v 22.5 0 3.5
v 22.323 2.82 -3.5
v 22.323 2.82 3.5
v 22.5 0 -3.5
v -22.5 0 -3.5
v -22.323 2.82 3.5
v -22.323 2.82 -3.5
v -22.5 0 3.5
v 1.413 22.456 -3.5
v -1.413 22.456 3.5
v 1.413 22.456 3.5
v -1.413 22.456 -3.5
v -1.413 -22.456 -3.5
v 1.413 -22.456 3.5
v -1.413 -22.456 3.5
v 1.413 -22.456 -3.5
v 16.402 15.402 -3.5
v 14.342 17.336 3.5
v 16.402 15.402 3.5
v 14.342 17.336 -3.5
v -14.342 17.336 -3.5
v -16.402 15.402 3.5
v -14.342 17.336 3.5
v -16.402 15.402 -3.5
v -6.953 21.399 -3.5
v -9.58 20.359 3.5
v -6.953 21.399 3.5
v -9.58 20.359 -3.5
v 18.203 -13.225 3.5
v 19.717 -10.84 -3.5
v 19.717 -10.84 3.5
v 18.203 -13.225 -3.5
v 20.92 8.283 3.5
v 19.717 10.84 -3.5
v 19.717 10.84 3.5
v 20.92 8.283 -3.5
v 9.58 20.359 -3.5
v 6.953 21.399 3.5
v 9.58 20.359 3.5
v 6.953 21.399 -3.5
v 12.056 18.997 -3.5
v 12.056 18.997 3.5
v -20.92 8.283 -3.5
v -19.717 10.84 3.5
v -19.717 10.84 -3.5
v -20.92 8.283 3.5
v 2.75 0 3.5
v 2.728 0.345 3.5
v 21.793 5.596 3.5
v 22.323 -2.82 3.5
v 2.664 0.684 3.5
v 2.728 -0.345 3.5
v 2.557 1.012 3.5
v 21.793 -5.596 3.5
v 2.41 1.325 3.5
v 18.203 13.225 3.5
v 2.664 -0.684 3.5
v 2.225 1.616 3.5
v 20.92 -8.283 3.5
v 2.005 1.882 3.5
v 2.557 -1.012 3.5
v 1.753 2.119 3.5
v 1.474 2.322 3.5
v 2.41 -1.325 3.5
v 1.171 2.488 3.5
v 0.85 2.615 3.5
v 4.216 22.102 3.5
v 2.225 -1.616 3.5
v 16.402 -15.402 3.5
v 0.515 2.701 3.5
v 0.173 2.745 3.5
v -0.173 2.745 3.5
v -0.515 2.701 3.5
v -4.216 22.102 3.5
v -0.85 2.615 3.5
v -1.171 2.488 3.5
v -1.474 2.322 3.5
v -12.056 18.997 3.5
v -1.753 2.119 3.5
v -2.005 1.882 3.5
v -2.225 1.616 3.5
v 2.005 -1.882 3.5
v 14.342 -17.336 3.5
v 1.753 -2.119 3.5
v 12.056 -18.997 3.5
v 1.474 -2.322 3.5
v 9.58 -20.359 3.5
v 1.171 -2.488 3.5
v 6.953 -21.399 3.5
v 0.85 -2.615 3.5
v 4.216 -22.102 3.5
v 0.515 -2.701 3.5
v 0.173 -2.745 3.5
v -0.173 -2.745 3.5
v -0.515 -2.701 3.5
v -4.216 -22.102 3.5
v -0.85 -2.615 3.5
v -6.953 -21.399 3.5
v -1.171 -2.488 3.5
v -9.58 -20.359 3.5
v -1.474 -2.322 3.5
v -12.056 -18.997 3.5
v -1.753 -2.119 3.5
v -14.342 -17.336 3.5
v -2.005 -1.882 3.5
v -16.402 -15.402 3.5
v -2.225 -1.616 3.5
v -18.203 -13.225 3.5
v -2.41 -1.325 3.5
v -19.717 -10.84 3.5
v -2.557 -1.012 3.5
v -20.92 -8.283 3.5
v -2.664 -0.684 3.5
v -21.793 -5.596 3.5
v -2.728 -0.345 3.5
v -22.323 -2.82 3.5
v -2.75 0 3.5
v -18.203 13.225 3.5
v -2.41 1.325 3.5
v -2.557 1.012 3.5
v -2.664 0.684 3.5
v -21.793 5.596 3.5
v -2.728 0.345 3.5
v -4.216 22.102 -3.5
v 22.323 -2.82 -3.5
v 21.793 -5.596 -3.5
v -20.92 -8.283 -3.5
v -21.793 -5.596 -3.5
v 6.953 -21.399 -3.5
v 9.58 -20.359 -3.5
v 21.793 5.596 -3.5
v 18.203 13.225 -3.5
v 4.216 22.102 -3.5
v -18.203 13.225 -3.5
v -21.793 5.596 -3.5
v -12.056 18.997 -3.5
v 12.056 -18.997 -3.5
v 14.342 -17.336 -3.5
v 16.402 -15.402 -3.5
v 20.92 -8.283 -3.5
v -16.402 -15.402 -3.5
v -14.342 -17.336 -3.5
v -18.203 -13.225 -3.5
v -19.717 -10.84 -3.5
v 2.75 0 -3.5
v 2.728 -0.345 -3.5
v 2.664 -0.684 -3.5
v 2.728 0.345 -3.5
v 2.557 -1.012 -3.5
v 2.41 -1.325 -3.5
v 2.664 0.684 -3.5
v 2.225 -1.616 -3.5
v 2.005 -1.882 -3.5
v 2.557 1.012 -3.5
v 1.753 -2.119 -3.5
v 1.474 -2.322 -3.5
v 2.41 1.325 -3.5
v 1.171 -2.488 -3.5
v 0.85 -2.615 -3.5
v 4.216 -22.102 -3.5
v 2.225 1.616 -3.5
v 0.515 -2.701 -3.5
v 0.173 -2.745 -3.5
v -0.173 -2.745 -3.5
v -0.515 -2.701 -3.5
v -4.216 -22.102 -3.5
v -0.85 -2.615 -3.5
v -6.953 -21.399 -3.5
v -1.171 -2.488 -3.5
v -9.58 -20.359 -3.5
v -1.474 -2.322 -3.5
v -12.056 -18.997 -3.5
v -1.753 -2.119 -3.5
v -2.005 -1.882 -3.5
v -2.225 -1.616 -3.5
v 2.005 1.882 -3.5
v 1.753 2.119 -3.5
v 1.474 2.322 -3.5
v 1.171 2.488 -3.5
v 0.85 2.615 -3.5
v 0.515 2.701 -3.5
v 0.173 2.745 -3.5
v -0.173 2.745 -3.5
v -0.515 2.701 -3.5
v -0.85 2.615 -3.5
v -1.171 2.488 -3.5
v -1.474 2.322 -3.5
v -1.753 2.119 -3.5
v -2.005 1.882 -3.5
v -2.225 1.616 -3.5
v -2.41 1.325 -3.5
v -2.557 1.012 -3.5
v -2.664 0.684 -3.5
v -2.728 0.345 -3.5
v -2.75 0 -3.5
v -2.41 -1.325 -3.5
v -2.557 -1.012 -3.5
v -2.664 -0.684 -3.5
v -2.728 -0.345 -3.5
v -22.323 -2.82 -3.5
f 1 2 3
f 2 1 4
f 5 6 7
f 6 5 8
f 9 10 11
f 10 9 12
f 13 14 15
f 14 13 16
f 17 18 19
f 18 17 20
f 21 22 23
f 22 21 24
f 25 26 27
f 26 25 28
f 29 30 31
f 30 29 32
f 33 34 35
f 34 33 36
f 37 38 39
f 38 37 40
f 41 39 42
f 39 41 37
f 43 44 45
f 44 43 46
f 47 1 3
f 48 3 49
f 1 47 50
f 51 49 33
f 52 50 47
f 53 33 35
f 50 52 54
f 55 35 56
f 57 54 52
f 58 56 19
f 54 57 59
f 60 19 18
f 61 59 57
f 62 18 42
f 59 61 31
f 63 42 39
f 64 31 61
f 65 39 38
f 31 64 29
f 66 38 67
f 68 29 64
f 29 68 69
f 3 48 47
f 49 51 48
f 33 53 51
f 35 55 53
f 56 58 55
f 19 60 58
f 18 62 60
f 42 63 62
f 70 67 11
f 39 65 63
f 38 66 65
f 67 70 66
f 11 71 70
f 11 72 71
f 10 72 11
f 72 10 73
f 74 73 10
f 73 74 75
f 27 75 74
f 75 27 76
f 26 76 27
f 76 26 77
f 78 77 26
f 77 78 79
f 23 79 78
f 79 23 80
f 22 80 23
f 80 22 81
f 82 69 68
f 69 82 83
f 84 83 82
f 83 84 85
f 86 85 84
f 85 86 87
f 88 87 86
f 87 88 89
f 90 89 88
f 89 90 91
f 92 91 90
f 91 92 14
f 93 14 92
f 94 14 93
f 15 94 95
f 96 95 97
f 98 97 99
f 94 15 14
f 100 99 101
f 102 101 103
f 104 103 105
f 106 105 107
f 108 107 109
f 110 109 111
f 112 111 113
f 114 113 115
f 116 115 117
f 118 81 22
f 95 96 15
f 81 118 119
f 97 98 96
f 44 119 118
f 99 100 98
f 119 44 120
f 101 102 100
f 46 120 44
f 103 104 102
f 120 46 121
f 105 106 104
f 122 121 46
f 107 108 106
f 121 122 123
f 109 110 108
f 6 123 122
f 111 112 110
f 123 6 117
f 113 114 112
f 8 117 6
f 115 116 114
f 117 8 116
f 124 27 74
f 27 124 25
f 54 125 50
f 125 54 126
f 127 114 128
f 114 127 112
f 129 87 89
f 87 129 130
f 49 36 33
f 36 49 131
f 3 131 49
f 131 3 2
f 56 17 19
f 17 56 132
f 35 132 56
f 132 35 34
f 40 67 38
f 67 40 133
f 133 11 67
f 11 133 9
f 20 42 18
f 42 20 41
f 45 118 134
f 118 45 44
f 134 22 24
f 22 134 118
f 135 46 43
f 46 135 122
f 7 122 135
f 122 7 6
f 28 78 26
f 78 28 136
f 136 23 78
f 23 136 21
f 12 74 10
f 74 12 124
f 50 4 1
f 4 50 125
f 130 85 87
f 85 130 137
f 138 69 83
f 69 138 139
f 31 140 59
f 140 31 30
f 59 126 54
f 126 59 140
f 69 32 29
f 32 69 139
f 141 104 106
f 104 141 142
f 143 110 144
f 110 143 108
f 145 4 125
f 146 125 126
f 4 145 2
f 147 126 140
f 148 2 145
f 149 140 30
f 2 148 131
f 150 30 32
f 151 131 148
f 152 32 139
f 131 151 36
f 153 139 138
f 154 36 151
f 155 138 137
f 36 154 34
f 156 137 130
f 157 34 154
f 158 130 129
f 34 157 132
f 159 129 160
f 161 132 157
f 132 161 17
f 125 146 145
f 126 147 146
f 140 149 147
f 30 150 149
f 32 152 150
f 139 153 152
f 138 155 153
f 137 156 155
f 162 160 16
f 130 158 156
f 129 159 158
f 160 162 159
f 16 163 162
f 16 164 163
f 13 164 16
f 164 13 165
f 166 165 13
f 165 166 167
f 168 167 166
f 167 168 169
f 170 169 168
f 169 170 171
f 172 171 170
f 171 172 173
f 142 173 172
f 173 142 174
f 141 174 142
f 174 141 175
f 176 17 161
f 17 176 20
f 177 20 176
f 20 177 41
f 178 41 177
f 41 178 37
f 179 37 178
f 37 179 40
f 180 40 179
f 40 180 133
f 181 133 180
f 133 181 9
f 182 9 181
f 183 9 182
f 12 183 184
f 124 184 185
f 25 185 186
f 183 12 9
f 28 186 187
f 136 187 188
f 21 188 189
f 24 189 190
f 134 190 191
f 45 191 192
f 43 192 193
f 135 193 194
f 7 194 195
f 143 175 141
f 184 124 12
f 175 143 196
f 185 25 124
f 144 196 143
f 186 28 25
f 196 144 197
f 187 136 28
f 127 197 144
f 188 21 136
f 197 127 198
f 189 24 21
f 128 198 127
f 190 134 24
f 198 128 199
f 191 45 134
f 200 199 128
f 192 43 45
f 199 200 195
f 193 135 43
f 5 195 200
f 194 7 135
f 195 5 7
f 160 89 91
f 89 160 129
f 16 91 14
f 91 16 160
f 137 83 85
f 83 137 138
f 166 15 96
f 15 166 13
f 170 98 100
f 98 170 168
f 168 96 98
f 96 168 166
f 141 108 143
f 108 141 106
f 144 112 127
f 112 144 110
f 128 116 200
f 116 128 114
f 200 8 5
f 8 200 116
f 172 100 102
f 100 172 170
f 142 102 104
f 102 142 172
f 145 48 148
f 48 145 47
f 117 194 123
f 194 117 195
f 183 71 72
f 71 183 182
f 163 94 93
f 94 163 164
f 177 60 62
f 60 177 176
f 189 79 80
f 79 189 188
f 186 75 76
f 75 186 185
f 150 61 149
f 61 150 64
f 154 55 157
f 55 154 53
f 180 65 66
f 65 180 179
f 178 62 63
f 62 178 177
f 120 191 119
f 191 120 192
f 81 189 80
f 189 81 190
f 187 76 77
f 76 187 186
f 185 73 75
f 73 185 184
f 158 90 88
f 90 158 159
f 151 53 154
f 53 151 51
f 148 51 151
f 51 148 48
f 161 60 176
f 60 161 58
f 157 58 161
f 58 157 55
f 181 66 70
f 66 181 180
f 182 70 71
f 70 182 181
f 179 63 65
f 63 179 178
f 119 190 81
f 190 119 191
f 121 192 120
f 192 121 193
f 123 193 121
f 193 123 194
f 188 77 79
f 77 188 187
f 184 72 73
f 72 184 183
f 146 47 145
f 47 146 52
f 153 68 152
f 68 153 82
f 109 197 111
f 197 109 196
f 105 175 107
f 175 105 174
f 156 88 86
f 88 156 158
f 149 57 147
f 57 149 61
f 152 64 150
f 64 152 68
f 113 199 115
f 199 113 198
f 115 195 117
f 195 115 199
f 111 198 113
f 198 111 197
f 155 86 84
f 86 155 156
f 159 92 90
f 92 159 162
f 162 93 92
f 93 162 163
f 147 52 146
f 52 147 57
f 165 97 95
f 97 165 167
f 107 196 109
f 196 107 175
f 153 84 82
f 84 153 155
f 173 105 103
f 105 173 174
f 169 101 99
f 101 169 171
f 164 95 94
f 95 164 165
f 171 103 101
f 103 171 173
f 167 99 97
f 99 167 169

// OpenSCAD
$fn = 50;


difference() {
	union() {
		translate(v = [0, 0, -3.5000000000]) {
			cylinder(h = 7, r = 22.5000000000);
		}
	}
	union() {
		translate(v = [0, 0, -100.0000000000]) {
			cylinder(h = 200, r = 2.7500000000);
		}
	}
}
